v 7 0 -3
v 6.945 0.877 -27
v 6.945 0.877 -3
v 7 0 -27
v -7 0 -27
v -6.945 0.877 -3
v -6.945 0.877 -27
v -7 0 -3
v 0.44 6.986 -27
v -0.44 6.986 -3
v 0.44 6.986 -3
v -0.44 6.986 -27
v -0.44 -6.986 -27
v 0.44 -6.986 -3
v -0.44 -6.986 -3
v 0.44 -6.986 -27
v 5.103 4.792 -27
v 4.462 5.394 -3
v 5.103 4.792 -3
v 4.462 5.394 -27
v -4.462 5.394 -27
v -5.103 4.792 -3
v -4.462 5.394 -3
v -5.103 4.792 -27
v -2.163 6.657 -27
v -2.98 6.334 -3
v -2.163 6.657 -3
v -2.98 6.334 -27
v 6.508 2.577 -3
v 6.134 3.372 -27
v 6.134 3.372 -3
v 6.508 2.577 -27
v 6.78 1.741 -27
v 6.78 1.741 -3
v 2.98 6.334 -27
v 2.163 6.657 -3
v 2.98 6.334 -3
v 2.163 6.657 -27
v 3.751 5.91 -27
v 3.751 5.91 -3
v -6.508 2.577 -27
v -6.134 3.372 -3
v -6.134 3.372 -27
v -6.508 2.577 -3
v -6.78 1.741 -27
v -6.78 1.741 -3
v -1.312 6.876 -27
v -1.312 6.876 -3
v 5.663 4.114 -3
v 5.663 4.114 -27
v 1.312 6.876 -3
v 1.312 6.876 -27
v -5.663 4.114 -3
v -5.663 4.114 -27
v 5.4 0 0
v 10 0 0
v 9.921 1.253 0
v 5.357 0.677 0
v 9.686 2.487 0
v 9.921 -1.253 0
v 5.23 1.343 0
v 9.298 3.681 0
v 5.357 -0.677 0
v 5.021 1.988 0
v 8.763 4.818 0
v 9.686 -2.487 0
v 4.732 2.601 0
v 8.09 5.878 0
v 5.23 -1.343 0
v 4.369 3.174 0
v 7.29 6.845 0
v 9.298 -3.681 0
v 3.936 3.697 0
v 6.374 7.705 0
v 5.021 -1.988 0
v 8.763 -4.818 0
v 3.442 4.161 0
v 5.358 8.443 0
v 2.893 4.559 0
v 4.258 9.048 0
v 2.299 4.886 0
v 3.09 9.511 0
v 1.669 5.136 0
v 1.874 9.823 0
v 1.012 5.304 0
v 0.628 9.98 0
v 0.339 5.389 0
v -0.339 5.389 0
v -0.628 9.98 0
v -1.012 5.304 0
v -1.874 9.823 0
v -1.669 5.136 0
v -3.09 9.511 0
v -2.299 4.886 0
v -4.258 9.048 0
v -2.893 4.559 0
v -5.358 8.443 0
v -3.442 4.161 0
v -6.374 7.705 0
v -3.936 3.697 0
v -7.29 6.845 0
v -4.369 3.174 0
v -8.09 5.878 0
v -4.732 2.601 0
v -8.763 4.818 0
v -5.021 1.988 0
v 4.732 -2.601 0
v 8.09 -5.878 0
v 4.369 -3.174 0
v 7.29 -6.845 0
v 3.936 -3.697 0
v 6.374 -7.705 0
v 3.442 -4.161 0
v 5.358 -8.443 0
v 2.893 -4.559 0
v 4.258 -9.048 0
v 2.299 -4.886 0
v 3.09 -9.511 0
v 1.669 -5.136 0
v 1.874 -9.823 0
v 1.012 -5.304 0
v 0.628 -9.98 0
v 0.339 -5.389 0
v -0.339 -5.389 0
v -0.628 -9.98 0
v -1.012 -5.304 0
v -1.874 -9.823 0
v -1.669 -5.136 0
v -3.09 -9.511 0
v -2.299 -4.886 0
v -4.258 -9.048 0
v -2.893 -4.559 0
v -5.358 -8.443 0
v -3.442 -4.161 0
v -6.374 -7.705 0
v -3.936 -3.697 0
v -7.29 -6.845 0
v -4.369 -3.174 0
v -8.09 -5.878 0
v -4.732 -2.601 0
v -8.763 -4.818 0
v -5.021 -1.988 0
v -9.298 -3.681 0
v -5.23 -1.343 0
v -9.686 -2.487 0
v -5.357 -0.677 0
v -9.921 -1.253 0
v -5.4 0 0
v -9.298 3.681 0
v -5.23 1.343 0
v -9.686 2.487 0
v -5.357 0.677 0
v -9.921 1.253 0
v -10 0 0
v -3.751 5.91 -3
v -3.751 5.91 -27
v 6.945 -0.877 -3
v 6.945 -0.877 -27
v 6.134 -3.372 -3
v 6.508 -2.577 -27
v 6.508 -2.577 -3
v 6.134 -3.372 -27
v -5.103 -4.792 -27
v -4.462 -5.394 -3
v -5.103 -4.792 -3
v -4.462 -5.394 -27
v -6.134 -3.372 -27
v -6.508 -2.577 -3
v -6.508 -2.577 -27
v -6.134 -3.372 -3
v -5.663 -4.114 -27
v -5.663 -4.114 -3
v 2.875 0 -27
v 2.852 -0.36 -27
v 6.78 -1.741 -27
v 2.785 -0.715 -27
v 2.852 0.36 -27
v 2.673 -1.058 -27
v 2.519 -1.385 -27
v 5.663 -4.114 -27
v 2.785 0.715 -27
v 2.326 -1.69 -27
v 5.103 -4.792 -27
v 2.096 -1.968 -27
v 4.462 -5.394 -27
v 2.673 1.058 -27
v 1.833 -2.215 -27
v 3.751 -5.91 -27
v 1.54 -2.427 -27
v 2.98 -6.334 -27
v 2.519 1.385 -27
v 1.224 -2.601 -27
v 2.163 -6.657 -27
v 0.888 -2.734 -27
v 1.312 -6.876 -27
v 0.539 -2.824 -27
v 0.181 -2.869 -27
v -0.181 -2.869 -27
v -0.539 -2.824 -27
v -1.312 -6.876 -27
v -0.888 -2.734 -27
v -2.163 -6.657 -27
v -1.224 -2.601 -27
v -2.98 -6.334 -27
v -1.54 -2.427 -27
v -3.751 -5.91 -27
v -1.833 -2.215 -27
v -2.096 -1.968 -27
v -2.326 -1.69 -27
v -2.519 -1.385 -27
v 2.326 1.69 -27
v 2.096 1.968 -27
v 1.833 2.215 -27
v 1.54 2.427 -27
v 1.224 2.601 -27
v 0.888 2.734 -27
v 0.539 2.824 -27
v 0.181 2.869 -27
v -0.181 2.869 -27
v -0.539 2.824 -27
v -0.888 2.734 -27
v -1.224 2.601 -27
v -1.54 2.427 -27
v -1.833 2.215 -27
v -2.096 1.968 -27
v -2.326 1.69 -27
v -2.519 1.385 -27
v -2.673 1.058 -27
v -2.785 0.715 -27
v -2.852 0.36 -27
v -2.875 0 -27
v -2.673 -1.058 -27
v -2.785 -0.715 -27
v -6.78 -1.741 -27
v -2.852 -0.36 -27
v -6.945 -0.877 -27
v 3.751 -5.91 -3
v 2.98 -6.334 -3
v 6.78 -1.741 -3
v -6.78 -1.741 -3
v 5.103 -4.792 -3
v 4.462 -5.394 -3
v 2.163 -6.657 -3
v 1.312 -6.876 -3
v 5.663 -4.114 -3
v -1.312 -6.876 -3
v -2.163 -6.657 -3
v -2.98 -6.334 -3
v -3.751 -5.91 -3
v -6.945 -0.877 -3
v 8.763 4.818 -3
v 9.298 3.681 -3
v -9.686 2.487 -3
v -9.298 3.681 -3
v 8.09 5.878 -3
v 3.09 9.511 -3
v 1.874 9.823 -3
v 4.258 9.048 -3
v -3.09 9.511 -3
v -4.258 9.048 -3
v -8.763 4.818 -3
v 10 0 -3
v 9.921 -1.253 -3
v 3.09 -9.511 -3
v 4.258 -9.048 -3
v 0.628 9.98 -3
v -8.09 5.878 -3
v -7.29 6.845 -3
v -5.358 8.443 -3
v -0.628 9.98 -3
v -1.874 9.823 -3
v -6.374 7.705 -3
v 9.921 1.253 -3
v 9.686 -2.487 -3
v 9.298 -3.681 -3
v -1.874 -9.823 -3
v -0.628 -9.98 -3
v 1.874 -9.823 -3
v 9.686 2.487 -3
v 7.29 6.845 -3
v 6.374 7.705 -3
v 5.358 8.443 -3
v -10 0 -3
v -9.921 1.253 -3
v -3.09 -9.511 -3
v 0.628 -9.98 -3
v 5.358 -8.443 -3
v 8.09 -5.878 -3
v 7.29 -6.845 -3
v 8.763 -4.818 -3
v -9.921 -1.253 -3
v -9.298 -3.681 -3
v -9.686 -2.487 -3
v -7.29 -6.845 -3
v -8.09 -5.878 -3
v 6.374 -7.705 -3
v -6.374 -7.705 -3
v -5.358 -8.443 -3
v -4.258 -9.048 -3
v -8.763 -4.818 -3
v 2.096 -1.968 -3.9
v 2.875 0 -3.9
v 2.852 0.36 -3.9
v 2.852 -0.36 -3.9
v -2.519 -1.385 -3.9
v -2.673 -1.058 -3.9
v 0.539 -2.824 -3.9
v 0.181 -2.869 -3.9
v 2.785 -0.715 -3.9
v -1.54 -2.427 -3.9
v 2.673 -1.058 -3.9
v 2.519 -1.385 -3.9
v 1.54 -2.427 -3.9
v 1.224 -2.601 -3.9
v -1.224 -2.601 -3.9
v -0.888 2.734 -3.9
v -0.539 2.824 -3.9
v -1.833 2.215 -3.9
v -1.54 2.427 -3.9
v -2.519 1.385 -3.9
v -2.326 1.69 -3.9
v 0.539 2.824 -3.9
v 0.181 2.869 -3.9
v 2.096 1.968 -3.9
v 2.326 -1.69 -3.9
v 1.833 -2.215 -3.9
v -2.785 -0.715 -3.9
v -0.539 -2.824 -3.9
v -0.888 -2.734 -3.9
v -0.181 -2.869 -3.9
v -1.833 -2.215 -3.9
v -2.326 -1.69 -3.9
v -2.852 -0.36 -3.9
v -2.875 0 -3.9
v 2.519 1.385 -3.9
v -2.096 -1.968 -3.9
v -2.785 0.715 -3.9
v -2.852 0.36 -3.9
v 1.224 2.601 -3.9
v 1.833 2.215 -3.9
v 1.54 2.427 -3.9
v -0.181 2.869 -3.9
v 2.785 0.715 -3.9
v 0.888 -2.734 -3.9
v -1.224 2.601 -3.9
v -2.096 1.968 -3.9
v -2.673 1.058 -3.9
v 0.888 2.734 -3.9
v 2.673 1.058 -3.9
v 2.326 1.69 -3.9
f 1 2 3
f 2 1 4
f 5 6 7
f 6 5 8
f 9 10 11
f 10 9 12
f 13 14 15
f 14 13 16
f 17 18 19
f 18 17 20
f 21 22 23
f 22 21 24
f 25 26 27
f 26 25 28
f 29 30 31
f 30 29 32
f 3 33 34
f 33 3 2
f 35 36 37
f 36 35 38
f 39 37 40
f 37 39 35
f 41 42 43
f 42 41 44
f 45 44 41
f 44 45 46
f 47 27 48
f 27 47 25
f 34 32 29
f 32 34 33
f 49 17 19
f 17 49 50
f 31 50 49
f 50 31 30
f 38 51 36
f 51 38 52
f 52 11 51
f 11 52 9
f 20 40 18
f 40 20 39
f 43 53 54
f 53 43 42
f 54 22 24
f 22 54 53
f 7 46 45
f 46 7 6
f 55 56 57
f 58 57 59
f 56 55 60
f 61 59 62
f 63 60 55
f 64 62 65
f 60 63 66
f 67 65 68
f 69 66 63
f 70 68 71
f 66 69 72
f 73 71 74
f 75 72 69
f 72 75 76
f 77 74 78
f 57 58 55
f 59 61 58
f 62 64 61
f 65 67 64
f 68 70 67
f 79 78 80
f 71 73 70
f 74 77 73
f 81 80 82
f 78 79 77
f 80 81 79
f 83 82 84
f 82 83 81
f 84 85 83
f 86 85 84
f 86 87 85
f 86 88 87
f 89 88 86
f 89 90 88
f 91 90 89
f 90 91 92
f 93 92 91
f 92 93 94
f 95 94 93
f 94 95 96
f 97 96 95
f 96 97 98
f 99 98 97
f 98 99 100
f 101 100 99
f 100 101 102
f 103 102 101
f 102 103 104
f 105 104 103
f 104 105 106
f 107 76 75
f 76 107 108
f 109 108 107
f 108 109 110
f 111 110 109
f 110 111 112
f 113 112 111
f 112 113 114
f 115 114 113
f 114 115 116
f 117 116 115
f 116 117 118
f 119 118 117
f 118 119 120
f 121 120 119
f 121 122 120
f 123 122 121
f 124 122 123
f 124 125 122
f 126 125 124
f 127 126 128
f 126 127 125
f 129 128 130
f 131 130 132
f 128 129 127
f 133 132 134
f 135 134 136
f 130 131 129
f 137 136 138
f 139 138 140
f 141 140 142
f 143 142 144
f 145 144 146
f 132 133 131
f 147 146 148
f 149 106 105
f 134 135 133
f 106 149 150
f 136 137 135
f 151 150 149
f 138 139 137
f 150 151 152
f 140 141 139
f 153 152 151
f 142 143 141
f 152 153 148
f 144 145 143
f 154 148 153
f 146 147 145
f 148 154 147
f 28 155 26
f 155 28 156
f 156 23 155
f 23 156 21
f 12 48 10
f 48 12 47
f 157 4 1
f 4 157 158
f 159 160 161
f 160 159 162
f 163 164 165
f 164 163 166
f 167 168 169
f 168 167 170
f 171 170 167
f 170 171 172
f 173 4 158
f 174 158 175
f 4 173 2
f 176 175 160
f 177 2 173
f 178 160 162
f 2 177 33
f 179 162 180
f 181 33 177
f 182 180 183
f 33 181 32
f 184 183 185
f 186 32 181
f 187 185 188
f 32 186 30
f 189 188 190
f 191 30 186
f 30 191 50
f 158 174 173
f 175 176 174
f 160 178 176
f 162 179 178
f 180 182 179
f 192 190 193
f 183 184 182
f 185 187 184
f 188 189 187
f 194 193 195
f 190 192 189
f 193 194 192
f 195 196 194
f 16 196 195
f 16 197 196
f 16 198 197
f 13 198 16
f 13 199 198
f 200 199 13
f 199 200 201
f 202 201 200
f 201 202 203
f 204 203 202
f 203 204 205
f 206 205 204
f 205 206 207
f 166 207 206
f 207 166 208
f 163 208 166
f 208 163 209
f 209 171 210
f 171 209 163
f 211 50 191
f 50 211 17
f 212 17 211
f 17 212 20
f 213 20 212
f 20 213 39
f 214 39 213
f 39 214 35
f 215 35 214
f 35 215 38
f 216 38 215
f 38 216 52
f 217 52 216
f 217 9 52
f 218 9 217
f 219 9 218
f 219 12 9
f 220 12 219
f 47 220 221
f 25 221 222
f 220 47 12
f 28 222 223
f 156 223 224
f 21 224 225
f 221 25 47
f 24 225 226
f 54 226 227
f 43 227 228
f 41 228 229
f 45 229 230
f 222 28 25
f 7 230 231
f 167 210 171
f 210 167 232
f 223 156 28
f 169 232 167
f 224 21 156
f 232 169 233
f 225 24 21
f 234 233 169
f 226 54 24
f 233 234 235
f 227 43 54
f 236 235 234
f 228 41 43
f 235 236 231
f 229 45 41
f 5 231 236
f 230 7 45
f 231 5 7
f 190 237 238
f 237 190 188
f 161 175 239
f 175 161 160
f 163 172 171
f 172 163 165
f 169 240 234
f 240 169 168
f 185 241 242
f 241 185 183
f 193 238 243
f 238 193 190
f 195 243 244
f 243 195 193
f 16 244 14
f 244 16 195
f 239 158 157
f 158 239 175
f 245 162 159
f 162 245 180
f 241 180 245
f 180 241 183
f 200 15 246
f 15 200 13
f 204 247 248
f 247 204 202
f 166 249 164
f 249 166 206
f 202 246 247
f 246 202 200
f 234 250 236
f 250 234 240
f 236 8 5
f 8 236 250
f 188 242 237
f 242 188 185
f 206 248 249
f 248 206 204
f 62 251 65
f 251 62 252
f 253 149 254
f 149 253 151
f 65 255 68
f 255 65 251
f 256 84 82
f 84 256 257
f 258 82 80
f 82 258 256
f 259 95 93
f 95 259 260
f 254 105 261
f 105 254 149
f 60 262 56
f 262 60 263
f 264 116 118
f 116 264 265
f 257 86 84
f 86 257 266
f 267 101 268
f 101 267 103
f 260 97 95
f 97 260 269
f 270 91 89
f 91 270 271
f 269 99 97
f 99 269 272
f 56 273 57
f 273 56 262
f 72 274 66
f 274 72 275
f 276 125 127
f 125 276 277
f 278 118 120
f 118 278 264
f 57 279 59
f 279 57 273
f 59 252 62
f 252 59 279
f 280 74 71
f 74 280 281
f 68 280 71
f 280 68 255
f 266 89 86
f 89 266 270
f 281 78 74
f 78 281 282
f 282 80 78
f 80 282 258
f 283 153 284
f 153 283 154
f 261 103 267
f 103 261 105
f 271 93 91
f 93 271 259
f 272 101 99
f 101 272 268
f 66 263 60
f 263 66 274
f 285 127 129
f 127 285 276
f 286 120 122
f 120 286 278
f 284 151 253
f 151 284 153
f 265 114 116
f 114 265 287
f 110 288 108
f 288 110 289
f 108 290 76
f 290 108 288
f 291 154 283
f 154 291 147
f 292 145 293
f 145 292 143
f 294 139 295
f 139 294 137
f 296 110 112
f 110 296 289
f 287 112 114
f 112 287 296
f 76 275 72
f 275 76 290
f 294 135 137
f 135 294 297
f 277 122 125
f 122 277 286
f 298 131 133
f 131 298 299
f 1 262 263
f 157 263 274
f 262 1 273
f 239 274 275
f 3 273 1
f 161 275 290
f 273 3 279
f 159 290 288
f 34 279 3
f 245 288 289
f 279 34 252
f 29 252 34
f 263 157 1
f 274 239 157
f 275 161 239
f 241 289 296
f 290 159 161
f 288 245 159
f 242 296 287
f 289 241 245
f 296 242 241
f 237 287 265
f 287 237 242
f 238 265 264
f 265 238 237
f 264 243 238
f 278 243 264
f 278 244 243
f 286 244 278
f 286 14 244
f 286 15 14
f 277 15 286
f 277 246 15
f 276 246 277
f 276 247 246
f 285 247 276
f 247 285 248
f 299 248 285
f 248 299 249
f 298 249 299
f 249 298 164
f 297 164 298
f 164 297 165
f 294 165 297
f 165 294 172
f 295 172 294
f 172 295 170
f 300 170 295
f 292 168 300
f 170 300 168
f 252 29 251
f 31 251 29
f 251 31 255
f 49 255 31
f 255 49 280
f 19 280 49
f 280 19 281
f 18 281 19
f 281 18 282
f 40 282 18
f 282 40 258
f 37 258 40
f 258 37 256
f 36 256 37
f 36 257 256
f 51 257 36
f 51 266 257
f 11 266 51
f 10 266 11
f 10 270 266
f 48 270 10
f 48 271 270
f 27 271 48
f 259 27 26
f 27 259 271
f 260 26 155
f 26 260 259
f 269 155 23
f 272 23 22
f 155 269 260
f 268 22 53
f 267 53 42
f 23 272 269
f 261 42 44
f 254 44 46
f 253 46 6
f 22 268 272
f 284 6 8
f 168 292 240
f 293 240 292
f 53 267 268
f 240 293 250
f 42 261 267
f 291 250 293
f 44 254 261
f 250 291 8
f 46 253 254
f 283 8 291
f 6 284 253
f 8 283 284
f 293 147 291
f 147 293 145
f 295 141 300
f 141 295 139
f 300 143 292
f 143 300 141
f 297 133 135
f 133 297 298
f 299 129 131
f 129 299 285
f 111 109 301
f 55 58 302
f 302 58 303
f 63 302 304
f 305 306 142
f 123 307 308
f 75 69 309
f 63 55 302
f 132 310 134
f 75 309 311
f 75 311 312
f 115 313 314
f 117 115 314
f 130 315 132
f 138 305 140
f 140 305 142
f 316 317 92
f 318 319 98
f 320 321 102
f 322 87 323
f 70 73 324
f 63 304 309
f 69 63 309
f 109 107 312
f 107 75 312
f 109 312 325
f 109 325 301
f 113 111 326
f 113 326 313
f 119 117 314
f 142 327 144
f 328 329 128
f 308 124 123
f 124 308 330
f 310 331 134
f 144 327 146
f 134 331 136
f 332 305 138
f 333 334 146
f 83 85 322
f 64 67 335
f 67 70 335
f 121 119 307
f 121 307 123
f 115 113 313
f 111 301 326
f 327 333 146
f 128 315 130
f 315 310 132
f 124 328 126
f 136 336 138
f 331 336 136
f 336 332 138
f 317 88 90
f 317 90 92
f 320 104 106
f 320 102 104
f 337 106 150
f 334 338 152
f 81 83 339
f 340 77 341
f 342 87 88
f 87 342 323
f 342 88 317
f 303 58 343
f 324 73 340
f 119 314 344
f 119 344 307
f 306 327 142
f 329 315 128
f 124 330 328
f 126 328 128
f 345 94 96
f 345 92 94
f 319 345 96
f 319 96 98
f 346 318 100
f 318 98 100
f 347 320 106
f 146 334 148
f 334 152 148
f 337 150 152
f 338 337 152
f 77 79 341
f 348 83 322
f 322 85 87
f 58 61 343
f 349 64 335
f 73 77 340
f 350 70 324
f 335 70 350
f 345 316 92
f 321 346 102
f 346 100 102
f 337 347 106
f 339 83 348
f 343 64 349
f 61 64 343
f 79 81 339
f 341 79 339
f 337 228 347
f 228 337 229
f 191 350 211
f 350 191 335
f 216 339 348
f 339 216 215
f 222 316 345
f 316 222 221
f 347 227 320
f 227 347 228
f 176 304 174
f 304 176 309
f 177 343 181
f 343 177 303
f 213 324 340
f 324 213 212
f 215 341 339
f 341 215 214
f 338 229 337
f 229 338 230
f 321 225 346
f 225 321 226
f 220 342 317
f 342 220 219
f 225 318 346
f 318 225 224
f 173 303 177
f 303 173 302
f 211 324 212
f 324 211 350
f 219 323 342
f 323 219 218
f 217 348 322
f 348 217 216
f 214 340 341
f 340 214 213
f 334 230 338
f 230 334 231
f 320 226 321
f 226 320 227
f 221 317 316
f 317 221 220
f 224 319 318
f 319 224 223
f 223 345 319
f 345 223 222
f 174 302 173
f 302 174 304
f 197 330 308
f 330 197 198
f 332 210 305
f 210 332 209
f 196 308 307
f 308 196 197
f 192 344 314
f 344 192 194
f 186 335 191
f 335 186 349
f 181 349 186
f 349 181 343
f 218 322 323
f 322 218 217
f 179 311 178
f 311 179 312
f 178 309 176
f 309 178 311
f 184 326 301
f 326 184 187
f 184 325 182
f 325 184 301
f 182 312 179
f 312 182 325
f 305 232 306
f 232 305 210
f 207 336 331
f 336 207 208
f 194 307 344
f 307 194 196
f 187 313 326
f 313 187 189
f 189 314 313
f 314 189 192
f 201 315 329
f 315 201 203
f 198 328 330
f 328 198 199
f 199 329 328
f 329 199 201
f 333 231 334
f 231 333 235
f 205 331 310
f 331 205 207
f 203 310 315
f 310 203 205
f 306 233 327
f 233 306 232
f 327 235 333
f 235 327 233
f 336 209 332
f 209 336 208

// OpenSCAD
$fn = 50;


difference() {
	union() {
		translate(v = [0, 0, -27.0000000000]) {
			cylinder(h = 27, r = 7.0000000000);
		}
		translate(v = [0, 0, -3.0000000000]) {
			cylinder(h = 3, r = 10.0000000000);
		}
	}
	union() {
		translate(v = [0, 0, 0]) {
			rotate(a = [0, 0, 0]) {
				difference() {
					union() {
						#translate(v = [0, 0, -27.0000000000]) {
							cylinder(h = 27, r = 2.6000000000);
						}
						#translate(v = [0, 0, -3.9000000000]) {
							cylinder(h = 3.9000000000, r = 7.0000000000, r1 = 2.8750000000, r2 = 5.4000000000);
						}
						#translate(v = [0, 0, -27.0000000000]) {
							cylinder(h = 27, r = 2.8750000000);
						}
						#translate(v = [0, 0, -27.0000000000]) {
							cylinder(h = 27, r = 2.6000000000);
						}
					}
					union();
				}
			}
		}
	}
}
